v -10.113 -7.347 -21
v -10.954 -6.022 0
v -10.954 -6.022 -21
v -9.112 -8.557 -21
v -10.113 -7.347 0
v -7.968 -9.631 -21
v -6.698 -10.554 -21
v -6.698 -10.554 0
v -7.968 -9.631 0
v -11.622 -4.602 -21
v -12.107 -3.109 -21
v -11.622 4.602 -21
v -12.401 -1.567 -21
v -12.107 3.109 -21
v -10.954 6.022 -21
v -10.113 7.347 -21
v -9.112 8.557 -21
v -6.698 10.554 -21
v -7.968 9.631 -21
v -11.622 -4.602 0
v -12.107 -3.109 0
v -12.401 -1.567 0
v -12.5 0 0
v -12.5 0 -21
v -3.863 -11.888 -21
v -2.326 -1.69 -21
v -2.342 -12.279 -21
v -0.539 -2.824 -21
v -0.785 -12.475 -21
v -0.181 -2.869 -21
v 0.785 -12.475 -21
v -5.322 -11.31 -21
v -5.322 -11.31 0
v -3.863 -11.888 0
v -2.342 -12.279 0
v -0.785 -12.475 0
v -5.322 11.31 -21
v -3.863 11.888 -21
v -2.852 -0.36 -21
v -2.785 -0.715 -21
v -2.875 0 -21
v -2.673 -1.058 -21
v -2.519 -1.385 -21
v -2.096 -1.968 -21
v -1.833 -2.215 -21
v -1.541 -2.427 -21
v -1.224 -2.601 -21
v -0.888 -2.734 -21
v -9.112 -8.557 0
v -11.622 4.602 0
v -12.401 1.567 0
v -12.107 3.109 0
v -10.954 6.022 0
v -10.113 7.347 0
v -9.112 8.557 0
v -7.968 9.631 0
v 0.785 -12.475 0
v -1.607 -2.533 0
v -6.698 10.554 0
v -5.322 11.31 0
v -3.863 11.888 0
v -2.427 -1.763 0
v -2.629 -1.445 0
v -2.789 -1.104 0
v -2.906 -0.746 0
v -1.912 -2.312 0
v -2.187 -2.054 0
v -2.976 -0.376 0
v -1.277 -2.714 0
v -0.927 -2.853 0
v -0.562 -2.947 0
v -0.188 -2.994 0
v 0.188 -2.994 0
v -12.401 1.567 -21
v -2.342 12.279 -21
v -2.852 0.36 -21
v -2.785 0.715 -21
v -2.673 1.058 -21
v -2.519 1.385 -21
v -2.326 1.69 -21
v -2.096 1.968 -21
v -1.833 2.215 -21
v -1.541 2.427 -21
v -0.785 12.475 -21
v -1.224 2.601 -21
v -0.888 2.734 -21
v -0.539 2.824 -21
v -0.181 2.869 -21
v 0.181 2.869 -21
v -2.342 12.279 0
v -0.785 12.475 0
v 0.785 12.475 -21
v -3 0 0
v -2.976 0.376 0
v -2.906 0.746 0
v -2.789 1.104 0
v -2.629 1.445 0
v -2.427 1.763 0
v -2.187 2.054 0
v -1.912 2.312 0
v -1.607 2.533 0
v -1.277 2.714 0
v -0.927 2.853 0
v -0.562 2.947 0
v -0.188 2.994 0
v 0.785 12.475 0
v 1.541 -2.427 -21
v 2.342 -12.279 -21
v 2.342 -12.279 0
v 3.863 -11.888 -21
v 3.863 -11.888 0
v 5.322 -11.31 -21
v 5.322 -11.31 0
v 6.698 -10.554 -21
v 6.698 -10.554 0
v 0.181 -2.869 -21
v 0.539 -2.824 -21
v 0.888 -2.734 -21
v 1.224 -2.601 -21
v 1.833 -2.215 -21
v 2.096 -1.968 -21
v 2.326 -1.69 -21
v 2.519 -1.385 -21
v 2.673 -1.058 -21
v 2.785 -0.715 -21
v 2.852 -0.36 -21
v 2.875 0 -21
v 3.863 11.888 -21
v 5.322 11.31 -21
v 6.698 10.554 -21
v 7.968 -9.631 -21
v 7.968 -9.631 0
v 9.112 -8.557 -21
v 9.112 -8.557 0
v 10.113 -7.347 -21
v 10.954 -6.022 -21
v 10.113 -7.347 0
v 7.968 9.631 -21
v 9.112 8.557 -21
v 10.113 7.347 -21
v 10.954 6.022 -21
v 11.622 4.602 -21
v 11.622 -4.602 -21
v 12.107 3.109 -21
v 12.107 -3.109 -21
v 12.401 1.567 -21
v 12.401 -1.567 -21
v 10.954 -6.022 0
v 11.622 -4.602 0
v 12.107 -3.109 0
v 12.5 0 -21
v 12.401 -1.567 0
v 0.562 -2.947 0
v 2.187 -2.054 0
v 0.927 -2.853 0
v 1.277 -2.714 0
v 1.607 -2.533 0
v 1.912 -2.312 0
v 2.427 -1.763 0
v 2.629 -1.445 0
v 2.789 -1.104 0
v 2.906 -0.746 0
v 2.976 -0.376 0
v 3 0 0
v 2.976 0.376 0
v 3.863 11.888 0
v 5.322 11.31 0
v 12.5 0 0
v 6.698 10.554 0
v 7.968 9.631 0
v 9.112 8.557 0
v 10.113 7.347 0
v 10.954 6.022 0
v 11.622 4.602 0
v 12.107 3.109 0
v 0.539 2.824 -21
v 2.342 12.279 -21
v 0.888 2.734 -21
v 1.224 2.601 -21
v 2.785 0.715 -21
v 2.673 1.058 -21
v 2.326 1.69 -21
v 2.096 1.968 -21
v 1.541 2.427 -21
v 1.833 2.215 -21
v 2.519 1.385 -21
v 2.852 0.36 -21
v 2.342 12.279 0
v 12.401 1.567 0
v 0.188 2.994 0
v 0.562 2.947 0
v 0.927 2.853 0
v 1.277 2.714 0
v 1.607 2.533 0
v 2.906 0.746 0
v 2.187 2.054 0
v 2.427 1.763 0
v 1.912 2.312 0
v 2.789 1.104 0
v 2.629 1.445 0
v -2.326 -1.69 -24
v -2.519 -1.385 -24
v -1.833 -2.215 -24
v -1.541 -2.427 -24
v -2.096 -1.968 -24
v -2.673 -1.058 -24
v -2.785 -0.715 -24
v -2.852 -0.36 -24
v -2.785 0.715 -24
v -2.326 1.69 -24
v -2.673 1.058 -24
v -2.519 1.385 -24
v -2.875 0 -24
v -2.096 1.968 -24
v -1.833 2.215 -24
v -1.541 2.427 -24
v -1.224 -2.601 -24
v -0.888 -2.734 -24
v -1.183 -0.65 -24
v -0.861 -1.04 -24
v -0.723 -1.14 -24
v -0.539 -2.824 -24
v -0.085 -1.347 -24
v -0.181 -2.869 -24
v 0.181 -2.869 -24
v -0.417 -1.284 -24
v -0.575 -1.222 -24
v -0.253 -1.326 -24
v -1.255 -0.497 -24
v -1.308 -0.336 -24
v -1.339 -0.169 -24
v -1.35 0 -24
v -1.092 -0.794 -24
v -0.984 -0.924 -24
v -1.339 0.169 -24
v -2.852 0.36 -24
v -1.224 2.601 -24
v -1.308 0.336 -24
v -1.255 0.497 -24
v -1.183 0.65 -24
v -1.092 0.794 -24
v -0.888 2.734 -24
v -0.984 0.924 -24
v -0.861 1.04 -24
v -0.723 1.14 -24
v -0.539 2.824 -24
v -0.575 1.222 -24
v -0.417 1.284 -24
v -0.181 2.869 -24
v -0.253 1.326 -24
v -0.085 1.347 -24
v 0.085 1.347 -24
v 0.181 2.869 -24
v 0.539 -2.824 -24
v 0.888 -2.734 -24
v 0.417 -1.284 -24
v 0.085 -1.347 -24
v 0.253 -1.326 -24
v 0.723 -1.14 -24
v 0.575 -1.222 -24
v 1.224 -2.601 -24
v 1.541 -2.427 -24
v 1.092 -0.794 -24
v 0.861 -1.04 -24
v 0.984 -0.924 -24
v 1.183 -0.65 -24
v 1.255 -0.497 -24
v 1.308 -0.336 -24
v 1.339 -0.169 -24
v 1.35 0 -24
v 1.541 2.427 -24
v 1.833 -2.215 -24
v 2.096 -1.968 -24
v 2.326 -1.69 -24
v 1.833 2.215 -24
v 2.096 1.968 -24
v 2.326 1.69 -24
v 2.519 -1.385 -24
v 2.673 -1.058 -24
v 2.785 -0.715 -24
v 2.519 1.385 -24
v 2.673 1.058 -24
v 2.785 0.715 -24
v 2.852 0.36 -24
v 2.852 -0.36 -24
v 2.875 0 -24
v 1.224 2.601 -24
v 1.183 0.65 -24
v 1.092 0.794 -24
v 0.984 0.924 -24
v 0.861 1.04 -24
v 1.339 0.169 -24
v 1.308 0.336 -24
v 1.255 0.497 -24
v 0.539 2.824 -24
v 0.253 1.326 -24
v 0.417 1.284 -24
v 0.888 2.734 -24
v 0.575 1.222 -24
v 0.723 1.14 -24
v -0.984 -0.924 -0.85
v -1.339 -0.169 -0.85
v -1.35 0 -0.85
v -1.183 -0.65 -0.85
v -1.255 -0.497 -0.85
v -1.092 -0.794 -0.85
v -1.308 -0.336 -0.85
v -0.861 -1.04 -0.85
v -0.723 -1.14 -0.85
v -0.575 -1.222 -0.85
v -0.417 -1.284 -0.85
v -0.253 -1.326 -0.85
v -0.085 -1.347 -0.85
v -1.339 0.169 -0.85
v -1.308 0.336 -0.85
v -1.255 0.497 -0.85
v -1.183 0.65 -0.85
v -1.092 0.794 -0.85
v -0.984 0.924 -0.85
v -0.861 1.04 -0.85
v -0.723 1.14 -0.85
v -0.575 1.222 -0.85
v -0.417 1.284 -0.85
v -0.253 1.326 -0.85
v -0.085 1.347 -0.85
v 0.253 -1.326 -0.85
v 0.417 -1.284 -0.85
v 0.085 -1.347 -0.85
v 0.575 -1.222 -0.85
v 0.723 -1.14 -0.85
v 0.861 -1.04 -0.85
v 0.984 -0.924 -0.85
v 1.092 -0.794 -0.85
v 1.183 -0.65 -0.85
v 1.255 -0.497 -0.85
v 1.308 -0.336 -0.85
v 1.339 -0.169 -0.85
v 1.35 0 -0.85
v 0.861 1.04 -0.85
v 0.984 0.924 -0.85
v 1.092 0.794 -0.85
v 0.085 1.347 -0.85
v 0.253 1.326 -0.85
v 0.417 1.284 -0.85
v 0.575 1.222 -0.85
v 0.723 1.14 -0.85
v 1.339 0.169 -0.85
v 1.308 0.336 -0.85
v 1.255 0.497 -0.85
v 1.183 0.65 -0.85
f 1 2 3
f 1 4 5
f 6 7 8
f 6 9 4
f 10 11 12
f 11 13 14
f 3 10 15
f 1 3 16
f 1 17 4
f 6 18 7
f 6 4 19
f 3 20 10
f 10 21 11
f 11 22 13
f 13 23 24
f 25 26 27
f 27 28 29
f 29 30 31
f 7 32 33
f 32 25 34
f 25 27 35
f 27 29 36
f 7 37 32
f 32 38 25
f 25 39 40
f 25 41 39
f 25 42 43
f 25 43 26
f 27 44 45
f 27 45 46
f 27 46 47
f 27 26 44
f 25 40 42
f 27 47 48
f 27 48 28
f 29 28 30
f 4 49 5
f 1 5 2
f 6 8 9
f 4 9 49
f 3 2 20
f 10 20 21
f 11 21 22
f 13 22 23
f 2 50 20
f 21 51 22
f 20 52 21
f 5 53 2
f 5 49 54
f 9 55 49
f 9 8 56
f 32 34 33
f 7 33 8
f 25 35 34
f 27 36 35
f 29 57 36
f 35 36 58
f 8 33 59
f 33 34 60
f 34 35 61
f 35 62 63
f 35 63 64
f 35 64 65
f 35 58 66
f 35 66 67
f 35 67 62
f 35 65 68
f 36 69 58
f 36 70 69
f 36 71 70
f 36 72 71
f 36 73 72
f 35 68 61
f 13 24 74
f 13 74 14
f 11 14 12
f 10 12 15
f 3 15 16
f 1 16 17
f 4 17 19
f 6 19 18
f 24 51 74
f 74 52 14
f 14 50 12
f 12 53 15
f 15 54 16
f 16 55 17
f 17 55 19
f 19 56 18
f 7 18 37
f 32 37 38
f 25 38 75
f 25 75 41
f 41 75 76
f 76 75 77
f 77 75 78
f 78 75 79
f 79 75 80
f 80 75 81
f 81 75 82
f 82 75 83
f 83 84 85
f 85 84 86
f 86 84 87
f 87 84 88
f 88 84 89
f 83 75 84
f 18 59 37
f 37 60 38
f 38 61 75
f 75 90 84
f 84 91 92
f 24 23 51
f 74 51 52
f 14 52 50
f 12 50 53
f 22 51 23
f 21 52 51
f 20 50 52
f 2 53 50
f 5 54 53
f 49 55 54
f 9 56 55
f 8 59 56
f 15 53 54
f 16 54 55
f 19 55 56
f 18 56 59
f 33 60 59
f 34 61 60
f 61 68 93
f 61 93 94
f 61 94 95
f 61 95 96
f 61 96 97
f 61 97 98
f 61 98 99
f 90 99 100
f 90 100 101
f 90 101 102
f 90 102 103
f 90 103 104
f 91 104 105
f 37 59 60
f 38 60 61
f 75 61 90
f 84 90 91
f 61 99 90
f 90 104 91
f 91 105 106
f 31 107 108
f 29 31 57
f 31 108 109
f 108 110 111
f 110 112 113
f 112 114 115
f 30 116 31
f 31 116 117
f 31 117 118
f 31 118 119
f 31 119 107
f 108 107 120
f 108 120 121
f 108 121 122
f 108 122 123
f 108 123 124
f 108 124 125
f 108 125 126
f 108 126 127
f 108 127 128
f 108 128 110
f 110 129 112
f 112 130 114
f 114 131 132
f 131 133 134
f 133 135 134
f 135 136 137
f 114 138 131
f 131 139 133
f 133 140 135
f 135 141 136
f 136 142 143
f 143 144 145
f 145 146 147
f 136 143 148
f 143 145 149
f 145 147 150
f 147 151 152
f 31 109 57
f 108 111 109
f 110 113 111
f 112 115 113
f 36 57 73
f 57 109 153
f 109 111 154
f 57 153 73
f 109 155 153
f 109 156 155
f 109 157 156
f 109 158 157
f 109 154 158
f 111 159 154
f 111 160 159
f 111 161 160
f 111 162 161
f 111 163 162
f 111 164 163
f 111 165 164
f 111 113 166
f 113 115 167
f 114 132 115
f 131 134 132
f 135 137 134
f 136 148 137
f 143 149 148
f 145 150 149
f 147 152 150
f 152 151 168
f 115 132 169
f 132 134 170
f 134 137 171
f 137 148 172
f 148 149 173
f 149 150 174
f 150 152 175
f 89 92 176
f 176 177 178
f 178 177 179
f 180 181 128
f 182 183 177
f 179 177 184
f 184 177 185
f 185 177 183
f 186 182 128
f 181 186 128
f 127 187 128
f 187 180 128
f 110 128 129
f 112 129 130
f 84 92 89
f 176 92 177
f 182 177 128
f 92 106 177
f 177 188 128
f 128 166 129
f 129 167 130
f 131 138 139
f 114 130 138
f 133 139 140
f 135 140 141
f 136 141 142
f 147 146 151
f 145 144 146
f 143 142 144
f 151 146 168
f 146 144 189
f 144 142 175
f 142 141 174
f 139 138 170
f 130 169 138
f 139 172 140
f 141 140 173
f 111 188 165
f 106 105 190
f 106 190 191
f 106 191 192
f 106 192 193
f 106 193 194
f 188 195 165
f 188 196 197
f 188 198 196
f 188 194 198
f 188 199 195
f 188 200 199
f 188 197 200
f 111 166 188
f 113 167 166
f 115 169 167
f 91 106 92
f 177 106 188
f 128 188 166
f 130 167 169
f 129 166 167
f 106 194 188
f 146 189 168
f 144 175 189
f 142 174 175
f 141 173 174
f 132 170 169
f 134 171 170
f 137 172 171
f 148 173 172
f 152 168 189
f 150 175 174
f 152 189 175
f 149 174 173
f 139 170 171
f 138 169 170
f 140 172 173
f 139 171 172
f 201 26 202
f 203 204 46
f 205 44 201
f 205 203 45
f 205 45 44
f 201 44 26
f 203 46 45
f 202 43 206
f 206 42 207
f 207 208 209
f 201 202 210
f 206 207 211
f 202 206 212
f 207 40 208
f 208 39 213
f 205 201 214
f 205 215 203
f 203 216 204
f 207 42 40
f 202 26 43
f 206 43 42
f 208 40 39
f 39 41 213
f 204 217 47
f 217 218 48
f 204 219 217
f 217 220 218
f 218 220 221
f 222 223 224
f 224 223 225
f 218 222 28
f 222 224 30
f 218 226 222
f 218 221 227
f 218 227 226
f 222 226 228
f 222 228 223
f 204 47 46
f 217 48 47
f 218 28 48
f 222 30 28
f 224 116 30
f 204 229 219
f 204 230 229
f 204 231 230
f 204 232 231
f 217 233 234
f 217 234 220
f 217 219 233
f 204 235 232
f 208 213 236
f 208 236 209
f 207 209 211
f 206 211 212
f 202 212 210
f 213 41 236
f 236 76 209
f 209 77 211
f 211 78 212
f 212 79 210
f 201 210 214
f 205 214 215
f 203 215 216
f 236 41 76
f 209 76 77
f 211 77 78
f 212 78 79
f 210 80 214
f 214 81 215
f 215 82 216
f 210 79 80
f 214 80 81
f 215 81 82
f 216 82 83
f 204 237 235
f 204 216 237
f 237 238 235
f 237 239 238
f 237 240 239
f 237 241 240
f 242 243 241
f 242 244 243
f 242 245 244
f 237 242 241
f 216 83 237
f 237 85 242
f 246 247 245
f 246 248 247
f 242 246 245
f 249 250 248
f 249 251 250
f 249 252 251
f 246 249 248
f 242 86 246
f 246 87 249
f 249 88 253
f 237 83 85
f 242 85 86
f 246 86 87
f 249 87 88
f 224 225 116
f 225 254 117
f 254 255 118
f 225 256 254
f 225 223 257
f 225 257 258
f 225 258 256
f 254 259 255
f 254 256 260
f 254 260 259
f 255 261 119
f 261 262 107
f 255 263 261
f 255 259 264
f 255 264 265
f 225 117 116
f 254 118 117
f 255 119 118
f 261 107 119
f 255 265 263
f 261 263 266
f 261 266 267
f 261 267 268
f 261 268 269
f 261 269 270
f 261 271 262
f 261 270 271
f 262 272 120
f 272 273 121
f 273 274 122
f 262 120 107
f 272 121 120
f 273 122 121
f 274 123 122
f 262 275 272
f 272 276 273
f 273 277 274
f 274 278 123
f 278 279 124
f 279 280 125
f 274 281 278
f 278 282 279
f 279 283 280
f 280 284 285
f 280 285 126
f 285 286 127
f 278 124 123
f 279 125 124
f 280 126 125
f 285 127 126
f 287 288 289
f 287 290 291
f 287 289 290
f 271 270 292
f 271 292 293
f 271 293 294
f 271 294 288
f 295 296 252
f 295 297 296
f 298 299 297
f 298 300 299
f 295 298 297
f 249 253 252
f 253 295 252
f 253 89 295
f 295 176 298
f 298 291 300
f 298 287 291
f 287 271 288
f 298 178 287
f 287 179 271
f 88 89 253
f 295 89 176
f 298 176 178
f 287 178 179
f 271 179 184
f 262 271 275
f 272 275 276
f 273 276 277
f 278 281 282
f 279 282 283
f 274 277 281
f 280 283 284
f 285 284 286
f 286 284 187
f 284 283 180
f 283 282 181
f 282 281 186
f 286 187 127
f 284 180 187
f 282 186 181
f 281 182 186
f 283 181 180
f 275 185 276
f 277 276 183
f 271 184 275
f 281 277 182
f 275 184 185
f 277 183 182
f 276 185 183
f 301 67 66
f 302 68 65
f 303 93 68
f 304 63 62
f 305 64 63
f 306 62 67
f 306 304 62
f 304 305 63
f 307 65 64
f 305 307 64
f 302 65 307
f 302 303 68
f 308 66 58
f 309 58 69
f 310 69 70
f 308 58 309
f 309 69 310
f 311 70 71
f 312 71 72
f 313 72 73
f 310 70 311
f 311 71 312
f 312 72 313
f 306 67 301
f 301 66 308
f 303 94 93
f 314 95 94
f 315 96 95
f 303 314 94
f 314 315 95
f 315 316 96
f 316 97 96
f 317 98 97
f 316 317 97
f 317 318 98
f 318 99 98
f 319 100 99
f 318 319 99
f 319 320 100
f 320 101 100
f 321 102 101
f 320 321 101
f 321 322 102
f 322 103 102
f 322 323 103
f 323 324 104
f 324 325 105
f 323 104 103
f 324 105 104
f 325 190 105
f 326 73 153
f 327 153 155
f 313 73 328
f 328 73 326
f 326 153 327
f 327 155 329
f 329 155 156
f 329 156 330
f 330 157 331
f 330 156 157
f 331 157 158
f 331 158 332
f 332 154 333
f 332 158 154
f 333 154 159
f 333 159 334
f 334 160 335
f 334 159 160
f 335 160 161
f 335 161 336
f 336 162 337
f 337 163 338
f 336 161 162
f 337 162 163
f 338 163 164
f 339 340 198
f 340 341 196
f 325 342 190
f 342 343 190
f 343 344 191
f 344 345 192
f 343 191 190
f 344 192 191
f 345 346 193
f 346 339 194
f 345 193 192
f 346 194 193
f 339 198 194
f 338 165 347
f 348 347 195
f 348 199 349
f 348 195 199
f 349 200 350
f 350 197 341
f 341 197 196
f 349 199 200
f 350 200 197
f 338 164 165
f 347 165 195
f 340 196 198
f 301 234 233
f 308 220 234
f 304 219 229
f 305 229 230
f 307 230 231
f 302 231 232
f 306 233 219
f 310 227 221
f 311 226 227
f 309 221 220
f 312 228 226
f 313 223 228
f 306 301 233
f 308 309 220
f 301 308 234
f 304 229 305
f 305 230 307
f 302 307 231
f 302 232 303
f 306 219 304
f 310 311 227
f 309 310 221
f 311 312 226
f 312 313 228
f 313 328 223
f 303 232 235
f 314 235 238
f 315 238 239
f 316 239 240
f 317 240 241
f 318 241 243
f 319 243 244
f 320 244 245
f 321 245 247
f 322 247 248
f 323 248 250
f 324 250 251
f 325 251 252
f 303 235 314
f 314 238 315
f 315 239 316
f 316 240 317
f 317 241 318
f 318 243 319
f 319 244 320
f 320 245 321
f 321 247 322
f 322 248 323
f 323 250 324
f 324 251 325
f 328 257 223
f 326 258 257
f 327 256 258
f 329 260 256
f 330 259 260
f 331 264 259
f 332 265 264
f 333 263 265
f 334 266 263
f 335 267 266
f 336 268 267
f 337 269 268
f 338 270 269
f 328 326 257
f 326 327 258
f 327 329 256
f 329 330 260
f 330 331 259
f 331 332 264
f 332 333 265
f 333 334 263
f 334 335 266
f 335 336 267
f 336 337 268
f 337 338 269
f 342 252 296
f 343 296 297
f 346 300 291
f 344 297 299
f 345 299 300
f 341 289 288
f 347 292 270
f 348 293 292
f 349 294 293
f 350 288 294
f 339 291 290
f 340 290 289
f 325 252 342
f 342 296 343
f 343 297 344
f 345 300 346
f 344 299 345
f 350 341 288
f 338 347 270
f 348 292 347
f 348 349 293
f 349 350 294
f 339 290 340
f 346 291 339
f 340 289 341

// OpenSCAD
$fn = 50;


difference() {
	union() {
		translate(v = [0, 0, -21.0000000000]) {
			cylinder(h = 21, r = 12.5000000000);
		}
		#translate(v = [0, 0, -24.0000000000]) {
			cylinder(h = 24, r = 2.8750000000);
		}
	}
	union() {
		translate(v = [0, 0, 0]) {
			rotate(a = [0, 0, 0]) {
				difference() {
					union() {
						translate(v = [0, 0, -24.0000000000]) {
							cylinder(h = 24, r = 1.0000000000);
						}
						translate(v = [0, 0, -0.8500000000]) {
							cylinder(h = 0.8500000000, r1 = 1.3500000000, r2 = 3.0000000000);
						}
						translate(v = [0, 0, -24.0000000000]) {
							cylinder(h = 24, r = 1.3500000000);
						}
						translate(v = [0, 0, -24.0000000000]) {
							cylinder(h = 24, r = 1.0000000000);
						}
					}
					union();
				}
			}
		}
	}
}
